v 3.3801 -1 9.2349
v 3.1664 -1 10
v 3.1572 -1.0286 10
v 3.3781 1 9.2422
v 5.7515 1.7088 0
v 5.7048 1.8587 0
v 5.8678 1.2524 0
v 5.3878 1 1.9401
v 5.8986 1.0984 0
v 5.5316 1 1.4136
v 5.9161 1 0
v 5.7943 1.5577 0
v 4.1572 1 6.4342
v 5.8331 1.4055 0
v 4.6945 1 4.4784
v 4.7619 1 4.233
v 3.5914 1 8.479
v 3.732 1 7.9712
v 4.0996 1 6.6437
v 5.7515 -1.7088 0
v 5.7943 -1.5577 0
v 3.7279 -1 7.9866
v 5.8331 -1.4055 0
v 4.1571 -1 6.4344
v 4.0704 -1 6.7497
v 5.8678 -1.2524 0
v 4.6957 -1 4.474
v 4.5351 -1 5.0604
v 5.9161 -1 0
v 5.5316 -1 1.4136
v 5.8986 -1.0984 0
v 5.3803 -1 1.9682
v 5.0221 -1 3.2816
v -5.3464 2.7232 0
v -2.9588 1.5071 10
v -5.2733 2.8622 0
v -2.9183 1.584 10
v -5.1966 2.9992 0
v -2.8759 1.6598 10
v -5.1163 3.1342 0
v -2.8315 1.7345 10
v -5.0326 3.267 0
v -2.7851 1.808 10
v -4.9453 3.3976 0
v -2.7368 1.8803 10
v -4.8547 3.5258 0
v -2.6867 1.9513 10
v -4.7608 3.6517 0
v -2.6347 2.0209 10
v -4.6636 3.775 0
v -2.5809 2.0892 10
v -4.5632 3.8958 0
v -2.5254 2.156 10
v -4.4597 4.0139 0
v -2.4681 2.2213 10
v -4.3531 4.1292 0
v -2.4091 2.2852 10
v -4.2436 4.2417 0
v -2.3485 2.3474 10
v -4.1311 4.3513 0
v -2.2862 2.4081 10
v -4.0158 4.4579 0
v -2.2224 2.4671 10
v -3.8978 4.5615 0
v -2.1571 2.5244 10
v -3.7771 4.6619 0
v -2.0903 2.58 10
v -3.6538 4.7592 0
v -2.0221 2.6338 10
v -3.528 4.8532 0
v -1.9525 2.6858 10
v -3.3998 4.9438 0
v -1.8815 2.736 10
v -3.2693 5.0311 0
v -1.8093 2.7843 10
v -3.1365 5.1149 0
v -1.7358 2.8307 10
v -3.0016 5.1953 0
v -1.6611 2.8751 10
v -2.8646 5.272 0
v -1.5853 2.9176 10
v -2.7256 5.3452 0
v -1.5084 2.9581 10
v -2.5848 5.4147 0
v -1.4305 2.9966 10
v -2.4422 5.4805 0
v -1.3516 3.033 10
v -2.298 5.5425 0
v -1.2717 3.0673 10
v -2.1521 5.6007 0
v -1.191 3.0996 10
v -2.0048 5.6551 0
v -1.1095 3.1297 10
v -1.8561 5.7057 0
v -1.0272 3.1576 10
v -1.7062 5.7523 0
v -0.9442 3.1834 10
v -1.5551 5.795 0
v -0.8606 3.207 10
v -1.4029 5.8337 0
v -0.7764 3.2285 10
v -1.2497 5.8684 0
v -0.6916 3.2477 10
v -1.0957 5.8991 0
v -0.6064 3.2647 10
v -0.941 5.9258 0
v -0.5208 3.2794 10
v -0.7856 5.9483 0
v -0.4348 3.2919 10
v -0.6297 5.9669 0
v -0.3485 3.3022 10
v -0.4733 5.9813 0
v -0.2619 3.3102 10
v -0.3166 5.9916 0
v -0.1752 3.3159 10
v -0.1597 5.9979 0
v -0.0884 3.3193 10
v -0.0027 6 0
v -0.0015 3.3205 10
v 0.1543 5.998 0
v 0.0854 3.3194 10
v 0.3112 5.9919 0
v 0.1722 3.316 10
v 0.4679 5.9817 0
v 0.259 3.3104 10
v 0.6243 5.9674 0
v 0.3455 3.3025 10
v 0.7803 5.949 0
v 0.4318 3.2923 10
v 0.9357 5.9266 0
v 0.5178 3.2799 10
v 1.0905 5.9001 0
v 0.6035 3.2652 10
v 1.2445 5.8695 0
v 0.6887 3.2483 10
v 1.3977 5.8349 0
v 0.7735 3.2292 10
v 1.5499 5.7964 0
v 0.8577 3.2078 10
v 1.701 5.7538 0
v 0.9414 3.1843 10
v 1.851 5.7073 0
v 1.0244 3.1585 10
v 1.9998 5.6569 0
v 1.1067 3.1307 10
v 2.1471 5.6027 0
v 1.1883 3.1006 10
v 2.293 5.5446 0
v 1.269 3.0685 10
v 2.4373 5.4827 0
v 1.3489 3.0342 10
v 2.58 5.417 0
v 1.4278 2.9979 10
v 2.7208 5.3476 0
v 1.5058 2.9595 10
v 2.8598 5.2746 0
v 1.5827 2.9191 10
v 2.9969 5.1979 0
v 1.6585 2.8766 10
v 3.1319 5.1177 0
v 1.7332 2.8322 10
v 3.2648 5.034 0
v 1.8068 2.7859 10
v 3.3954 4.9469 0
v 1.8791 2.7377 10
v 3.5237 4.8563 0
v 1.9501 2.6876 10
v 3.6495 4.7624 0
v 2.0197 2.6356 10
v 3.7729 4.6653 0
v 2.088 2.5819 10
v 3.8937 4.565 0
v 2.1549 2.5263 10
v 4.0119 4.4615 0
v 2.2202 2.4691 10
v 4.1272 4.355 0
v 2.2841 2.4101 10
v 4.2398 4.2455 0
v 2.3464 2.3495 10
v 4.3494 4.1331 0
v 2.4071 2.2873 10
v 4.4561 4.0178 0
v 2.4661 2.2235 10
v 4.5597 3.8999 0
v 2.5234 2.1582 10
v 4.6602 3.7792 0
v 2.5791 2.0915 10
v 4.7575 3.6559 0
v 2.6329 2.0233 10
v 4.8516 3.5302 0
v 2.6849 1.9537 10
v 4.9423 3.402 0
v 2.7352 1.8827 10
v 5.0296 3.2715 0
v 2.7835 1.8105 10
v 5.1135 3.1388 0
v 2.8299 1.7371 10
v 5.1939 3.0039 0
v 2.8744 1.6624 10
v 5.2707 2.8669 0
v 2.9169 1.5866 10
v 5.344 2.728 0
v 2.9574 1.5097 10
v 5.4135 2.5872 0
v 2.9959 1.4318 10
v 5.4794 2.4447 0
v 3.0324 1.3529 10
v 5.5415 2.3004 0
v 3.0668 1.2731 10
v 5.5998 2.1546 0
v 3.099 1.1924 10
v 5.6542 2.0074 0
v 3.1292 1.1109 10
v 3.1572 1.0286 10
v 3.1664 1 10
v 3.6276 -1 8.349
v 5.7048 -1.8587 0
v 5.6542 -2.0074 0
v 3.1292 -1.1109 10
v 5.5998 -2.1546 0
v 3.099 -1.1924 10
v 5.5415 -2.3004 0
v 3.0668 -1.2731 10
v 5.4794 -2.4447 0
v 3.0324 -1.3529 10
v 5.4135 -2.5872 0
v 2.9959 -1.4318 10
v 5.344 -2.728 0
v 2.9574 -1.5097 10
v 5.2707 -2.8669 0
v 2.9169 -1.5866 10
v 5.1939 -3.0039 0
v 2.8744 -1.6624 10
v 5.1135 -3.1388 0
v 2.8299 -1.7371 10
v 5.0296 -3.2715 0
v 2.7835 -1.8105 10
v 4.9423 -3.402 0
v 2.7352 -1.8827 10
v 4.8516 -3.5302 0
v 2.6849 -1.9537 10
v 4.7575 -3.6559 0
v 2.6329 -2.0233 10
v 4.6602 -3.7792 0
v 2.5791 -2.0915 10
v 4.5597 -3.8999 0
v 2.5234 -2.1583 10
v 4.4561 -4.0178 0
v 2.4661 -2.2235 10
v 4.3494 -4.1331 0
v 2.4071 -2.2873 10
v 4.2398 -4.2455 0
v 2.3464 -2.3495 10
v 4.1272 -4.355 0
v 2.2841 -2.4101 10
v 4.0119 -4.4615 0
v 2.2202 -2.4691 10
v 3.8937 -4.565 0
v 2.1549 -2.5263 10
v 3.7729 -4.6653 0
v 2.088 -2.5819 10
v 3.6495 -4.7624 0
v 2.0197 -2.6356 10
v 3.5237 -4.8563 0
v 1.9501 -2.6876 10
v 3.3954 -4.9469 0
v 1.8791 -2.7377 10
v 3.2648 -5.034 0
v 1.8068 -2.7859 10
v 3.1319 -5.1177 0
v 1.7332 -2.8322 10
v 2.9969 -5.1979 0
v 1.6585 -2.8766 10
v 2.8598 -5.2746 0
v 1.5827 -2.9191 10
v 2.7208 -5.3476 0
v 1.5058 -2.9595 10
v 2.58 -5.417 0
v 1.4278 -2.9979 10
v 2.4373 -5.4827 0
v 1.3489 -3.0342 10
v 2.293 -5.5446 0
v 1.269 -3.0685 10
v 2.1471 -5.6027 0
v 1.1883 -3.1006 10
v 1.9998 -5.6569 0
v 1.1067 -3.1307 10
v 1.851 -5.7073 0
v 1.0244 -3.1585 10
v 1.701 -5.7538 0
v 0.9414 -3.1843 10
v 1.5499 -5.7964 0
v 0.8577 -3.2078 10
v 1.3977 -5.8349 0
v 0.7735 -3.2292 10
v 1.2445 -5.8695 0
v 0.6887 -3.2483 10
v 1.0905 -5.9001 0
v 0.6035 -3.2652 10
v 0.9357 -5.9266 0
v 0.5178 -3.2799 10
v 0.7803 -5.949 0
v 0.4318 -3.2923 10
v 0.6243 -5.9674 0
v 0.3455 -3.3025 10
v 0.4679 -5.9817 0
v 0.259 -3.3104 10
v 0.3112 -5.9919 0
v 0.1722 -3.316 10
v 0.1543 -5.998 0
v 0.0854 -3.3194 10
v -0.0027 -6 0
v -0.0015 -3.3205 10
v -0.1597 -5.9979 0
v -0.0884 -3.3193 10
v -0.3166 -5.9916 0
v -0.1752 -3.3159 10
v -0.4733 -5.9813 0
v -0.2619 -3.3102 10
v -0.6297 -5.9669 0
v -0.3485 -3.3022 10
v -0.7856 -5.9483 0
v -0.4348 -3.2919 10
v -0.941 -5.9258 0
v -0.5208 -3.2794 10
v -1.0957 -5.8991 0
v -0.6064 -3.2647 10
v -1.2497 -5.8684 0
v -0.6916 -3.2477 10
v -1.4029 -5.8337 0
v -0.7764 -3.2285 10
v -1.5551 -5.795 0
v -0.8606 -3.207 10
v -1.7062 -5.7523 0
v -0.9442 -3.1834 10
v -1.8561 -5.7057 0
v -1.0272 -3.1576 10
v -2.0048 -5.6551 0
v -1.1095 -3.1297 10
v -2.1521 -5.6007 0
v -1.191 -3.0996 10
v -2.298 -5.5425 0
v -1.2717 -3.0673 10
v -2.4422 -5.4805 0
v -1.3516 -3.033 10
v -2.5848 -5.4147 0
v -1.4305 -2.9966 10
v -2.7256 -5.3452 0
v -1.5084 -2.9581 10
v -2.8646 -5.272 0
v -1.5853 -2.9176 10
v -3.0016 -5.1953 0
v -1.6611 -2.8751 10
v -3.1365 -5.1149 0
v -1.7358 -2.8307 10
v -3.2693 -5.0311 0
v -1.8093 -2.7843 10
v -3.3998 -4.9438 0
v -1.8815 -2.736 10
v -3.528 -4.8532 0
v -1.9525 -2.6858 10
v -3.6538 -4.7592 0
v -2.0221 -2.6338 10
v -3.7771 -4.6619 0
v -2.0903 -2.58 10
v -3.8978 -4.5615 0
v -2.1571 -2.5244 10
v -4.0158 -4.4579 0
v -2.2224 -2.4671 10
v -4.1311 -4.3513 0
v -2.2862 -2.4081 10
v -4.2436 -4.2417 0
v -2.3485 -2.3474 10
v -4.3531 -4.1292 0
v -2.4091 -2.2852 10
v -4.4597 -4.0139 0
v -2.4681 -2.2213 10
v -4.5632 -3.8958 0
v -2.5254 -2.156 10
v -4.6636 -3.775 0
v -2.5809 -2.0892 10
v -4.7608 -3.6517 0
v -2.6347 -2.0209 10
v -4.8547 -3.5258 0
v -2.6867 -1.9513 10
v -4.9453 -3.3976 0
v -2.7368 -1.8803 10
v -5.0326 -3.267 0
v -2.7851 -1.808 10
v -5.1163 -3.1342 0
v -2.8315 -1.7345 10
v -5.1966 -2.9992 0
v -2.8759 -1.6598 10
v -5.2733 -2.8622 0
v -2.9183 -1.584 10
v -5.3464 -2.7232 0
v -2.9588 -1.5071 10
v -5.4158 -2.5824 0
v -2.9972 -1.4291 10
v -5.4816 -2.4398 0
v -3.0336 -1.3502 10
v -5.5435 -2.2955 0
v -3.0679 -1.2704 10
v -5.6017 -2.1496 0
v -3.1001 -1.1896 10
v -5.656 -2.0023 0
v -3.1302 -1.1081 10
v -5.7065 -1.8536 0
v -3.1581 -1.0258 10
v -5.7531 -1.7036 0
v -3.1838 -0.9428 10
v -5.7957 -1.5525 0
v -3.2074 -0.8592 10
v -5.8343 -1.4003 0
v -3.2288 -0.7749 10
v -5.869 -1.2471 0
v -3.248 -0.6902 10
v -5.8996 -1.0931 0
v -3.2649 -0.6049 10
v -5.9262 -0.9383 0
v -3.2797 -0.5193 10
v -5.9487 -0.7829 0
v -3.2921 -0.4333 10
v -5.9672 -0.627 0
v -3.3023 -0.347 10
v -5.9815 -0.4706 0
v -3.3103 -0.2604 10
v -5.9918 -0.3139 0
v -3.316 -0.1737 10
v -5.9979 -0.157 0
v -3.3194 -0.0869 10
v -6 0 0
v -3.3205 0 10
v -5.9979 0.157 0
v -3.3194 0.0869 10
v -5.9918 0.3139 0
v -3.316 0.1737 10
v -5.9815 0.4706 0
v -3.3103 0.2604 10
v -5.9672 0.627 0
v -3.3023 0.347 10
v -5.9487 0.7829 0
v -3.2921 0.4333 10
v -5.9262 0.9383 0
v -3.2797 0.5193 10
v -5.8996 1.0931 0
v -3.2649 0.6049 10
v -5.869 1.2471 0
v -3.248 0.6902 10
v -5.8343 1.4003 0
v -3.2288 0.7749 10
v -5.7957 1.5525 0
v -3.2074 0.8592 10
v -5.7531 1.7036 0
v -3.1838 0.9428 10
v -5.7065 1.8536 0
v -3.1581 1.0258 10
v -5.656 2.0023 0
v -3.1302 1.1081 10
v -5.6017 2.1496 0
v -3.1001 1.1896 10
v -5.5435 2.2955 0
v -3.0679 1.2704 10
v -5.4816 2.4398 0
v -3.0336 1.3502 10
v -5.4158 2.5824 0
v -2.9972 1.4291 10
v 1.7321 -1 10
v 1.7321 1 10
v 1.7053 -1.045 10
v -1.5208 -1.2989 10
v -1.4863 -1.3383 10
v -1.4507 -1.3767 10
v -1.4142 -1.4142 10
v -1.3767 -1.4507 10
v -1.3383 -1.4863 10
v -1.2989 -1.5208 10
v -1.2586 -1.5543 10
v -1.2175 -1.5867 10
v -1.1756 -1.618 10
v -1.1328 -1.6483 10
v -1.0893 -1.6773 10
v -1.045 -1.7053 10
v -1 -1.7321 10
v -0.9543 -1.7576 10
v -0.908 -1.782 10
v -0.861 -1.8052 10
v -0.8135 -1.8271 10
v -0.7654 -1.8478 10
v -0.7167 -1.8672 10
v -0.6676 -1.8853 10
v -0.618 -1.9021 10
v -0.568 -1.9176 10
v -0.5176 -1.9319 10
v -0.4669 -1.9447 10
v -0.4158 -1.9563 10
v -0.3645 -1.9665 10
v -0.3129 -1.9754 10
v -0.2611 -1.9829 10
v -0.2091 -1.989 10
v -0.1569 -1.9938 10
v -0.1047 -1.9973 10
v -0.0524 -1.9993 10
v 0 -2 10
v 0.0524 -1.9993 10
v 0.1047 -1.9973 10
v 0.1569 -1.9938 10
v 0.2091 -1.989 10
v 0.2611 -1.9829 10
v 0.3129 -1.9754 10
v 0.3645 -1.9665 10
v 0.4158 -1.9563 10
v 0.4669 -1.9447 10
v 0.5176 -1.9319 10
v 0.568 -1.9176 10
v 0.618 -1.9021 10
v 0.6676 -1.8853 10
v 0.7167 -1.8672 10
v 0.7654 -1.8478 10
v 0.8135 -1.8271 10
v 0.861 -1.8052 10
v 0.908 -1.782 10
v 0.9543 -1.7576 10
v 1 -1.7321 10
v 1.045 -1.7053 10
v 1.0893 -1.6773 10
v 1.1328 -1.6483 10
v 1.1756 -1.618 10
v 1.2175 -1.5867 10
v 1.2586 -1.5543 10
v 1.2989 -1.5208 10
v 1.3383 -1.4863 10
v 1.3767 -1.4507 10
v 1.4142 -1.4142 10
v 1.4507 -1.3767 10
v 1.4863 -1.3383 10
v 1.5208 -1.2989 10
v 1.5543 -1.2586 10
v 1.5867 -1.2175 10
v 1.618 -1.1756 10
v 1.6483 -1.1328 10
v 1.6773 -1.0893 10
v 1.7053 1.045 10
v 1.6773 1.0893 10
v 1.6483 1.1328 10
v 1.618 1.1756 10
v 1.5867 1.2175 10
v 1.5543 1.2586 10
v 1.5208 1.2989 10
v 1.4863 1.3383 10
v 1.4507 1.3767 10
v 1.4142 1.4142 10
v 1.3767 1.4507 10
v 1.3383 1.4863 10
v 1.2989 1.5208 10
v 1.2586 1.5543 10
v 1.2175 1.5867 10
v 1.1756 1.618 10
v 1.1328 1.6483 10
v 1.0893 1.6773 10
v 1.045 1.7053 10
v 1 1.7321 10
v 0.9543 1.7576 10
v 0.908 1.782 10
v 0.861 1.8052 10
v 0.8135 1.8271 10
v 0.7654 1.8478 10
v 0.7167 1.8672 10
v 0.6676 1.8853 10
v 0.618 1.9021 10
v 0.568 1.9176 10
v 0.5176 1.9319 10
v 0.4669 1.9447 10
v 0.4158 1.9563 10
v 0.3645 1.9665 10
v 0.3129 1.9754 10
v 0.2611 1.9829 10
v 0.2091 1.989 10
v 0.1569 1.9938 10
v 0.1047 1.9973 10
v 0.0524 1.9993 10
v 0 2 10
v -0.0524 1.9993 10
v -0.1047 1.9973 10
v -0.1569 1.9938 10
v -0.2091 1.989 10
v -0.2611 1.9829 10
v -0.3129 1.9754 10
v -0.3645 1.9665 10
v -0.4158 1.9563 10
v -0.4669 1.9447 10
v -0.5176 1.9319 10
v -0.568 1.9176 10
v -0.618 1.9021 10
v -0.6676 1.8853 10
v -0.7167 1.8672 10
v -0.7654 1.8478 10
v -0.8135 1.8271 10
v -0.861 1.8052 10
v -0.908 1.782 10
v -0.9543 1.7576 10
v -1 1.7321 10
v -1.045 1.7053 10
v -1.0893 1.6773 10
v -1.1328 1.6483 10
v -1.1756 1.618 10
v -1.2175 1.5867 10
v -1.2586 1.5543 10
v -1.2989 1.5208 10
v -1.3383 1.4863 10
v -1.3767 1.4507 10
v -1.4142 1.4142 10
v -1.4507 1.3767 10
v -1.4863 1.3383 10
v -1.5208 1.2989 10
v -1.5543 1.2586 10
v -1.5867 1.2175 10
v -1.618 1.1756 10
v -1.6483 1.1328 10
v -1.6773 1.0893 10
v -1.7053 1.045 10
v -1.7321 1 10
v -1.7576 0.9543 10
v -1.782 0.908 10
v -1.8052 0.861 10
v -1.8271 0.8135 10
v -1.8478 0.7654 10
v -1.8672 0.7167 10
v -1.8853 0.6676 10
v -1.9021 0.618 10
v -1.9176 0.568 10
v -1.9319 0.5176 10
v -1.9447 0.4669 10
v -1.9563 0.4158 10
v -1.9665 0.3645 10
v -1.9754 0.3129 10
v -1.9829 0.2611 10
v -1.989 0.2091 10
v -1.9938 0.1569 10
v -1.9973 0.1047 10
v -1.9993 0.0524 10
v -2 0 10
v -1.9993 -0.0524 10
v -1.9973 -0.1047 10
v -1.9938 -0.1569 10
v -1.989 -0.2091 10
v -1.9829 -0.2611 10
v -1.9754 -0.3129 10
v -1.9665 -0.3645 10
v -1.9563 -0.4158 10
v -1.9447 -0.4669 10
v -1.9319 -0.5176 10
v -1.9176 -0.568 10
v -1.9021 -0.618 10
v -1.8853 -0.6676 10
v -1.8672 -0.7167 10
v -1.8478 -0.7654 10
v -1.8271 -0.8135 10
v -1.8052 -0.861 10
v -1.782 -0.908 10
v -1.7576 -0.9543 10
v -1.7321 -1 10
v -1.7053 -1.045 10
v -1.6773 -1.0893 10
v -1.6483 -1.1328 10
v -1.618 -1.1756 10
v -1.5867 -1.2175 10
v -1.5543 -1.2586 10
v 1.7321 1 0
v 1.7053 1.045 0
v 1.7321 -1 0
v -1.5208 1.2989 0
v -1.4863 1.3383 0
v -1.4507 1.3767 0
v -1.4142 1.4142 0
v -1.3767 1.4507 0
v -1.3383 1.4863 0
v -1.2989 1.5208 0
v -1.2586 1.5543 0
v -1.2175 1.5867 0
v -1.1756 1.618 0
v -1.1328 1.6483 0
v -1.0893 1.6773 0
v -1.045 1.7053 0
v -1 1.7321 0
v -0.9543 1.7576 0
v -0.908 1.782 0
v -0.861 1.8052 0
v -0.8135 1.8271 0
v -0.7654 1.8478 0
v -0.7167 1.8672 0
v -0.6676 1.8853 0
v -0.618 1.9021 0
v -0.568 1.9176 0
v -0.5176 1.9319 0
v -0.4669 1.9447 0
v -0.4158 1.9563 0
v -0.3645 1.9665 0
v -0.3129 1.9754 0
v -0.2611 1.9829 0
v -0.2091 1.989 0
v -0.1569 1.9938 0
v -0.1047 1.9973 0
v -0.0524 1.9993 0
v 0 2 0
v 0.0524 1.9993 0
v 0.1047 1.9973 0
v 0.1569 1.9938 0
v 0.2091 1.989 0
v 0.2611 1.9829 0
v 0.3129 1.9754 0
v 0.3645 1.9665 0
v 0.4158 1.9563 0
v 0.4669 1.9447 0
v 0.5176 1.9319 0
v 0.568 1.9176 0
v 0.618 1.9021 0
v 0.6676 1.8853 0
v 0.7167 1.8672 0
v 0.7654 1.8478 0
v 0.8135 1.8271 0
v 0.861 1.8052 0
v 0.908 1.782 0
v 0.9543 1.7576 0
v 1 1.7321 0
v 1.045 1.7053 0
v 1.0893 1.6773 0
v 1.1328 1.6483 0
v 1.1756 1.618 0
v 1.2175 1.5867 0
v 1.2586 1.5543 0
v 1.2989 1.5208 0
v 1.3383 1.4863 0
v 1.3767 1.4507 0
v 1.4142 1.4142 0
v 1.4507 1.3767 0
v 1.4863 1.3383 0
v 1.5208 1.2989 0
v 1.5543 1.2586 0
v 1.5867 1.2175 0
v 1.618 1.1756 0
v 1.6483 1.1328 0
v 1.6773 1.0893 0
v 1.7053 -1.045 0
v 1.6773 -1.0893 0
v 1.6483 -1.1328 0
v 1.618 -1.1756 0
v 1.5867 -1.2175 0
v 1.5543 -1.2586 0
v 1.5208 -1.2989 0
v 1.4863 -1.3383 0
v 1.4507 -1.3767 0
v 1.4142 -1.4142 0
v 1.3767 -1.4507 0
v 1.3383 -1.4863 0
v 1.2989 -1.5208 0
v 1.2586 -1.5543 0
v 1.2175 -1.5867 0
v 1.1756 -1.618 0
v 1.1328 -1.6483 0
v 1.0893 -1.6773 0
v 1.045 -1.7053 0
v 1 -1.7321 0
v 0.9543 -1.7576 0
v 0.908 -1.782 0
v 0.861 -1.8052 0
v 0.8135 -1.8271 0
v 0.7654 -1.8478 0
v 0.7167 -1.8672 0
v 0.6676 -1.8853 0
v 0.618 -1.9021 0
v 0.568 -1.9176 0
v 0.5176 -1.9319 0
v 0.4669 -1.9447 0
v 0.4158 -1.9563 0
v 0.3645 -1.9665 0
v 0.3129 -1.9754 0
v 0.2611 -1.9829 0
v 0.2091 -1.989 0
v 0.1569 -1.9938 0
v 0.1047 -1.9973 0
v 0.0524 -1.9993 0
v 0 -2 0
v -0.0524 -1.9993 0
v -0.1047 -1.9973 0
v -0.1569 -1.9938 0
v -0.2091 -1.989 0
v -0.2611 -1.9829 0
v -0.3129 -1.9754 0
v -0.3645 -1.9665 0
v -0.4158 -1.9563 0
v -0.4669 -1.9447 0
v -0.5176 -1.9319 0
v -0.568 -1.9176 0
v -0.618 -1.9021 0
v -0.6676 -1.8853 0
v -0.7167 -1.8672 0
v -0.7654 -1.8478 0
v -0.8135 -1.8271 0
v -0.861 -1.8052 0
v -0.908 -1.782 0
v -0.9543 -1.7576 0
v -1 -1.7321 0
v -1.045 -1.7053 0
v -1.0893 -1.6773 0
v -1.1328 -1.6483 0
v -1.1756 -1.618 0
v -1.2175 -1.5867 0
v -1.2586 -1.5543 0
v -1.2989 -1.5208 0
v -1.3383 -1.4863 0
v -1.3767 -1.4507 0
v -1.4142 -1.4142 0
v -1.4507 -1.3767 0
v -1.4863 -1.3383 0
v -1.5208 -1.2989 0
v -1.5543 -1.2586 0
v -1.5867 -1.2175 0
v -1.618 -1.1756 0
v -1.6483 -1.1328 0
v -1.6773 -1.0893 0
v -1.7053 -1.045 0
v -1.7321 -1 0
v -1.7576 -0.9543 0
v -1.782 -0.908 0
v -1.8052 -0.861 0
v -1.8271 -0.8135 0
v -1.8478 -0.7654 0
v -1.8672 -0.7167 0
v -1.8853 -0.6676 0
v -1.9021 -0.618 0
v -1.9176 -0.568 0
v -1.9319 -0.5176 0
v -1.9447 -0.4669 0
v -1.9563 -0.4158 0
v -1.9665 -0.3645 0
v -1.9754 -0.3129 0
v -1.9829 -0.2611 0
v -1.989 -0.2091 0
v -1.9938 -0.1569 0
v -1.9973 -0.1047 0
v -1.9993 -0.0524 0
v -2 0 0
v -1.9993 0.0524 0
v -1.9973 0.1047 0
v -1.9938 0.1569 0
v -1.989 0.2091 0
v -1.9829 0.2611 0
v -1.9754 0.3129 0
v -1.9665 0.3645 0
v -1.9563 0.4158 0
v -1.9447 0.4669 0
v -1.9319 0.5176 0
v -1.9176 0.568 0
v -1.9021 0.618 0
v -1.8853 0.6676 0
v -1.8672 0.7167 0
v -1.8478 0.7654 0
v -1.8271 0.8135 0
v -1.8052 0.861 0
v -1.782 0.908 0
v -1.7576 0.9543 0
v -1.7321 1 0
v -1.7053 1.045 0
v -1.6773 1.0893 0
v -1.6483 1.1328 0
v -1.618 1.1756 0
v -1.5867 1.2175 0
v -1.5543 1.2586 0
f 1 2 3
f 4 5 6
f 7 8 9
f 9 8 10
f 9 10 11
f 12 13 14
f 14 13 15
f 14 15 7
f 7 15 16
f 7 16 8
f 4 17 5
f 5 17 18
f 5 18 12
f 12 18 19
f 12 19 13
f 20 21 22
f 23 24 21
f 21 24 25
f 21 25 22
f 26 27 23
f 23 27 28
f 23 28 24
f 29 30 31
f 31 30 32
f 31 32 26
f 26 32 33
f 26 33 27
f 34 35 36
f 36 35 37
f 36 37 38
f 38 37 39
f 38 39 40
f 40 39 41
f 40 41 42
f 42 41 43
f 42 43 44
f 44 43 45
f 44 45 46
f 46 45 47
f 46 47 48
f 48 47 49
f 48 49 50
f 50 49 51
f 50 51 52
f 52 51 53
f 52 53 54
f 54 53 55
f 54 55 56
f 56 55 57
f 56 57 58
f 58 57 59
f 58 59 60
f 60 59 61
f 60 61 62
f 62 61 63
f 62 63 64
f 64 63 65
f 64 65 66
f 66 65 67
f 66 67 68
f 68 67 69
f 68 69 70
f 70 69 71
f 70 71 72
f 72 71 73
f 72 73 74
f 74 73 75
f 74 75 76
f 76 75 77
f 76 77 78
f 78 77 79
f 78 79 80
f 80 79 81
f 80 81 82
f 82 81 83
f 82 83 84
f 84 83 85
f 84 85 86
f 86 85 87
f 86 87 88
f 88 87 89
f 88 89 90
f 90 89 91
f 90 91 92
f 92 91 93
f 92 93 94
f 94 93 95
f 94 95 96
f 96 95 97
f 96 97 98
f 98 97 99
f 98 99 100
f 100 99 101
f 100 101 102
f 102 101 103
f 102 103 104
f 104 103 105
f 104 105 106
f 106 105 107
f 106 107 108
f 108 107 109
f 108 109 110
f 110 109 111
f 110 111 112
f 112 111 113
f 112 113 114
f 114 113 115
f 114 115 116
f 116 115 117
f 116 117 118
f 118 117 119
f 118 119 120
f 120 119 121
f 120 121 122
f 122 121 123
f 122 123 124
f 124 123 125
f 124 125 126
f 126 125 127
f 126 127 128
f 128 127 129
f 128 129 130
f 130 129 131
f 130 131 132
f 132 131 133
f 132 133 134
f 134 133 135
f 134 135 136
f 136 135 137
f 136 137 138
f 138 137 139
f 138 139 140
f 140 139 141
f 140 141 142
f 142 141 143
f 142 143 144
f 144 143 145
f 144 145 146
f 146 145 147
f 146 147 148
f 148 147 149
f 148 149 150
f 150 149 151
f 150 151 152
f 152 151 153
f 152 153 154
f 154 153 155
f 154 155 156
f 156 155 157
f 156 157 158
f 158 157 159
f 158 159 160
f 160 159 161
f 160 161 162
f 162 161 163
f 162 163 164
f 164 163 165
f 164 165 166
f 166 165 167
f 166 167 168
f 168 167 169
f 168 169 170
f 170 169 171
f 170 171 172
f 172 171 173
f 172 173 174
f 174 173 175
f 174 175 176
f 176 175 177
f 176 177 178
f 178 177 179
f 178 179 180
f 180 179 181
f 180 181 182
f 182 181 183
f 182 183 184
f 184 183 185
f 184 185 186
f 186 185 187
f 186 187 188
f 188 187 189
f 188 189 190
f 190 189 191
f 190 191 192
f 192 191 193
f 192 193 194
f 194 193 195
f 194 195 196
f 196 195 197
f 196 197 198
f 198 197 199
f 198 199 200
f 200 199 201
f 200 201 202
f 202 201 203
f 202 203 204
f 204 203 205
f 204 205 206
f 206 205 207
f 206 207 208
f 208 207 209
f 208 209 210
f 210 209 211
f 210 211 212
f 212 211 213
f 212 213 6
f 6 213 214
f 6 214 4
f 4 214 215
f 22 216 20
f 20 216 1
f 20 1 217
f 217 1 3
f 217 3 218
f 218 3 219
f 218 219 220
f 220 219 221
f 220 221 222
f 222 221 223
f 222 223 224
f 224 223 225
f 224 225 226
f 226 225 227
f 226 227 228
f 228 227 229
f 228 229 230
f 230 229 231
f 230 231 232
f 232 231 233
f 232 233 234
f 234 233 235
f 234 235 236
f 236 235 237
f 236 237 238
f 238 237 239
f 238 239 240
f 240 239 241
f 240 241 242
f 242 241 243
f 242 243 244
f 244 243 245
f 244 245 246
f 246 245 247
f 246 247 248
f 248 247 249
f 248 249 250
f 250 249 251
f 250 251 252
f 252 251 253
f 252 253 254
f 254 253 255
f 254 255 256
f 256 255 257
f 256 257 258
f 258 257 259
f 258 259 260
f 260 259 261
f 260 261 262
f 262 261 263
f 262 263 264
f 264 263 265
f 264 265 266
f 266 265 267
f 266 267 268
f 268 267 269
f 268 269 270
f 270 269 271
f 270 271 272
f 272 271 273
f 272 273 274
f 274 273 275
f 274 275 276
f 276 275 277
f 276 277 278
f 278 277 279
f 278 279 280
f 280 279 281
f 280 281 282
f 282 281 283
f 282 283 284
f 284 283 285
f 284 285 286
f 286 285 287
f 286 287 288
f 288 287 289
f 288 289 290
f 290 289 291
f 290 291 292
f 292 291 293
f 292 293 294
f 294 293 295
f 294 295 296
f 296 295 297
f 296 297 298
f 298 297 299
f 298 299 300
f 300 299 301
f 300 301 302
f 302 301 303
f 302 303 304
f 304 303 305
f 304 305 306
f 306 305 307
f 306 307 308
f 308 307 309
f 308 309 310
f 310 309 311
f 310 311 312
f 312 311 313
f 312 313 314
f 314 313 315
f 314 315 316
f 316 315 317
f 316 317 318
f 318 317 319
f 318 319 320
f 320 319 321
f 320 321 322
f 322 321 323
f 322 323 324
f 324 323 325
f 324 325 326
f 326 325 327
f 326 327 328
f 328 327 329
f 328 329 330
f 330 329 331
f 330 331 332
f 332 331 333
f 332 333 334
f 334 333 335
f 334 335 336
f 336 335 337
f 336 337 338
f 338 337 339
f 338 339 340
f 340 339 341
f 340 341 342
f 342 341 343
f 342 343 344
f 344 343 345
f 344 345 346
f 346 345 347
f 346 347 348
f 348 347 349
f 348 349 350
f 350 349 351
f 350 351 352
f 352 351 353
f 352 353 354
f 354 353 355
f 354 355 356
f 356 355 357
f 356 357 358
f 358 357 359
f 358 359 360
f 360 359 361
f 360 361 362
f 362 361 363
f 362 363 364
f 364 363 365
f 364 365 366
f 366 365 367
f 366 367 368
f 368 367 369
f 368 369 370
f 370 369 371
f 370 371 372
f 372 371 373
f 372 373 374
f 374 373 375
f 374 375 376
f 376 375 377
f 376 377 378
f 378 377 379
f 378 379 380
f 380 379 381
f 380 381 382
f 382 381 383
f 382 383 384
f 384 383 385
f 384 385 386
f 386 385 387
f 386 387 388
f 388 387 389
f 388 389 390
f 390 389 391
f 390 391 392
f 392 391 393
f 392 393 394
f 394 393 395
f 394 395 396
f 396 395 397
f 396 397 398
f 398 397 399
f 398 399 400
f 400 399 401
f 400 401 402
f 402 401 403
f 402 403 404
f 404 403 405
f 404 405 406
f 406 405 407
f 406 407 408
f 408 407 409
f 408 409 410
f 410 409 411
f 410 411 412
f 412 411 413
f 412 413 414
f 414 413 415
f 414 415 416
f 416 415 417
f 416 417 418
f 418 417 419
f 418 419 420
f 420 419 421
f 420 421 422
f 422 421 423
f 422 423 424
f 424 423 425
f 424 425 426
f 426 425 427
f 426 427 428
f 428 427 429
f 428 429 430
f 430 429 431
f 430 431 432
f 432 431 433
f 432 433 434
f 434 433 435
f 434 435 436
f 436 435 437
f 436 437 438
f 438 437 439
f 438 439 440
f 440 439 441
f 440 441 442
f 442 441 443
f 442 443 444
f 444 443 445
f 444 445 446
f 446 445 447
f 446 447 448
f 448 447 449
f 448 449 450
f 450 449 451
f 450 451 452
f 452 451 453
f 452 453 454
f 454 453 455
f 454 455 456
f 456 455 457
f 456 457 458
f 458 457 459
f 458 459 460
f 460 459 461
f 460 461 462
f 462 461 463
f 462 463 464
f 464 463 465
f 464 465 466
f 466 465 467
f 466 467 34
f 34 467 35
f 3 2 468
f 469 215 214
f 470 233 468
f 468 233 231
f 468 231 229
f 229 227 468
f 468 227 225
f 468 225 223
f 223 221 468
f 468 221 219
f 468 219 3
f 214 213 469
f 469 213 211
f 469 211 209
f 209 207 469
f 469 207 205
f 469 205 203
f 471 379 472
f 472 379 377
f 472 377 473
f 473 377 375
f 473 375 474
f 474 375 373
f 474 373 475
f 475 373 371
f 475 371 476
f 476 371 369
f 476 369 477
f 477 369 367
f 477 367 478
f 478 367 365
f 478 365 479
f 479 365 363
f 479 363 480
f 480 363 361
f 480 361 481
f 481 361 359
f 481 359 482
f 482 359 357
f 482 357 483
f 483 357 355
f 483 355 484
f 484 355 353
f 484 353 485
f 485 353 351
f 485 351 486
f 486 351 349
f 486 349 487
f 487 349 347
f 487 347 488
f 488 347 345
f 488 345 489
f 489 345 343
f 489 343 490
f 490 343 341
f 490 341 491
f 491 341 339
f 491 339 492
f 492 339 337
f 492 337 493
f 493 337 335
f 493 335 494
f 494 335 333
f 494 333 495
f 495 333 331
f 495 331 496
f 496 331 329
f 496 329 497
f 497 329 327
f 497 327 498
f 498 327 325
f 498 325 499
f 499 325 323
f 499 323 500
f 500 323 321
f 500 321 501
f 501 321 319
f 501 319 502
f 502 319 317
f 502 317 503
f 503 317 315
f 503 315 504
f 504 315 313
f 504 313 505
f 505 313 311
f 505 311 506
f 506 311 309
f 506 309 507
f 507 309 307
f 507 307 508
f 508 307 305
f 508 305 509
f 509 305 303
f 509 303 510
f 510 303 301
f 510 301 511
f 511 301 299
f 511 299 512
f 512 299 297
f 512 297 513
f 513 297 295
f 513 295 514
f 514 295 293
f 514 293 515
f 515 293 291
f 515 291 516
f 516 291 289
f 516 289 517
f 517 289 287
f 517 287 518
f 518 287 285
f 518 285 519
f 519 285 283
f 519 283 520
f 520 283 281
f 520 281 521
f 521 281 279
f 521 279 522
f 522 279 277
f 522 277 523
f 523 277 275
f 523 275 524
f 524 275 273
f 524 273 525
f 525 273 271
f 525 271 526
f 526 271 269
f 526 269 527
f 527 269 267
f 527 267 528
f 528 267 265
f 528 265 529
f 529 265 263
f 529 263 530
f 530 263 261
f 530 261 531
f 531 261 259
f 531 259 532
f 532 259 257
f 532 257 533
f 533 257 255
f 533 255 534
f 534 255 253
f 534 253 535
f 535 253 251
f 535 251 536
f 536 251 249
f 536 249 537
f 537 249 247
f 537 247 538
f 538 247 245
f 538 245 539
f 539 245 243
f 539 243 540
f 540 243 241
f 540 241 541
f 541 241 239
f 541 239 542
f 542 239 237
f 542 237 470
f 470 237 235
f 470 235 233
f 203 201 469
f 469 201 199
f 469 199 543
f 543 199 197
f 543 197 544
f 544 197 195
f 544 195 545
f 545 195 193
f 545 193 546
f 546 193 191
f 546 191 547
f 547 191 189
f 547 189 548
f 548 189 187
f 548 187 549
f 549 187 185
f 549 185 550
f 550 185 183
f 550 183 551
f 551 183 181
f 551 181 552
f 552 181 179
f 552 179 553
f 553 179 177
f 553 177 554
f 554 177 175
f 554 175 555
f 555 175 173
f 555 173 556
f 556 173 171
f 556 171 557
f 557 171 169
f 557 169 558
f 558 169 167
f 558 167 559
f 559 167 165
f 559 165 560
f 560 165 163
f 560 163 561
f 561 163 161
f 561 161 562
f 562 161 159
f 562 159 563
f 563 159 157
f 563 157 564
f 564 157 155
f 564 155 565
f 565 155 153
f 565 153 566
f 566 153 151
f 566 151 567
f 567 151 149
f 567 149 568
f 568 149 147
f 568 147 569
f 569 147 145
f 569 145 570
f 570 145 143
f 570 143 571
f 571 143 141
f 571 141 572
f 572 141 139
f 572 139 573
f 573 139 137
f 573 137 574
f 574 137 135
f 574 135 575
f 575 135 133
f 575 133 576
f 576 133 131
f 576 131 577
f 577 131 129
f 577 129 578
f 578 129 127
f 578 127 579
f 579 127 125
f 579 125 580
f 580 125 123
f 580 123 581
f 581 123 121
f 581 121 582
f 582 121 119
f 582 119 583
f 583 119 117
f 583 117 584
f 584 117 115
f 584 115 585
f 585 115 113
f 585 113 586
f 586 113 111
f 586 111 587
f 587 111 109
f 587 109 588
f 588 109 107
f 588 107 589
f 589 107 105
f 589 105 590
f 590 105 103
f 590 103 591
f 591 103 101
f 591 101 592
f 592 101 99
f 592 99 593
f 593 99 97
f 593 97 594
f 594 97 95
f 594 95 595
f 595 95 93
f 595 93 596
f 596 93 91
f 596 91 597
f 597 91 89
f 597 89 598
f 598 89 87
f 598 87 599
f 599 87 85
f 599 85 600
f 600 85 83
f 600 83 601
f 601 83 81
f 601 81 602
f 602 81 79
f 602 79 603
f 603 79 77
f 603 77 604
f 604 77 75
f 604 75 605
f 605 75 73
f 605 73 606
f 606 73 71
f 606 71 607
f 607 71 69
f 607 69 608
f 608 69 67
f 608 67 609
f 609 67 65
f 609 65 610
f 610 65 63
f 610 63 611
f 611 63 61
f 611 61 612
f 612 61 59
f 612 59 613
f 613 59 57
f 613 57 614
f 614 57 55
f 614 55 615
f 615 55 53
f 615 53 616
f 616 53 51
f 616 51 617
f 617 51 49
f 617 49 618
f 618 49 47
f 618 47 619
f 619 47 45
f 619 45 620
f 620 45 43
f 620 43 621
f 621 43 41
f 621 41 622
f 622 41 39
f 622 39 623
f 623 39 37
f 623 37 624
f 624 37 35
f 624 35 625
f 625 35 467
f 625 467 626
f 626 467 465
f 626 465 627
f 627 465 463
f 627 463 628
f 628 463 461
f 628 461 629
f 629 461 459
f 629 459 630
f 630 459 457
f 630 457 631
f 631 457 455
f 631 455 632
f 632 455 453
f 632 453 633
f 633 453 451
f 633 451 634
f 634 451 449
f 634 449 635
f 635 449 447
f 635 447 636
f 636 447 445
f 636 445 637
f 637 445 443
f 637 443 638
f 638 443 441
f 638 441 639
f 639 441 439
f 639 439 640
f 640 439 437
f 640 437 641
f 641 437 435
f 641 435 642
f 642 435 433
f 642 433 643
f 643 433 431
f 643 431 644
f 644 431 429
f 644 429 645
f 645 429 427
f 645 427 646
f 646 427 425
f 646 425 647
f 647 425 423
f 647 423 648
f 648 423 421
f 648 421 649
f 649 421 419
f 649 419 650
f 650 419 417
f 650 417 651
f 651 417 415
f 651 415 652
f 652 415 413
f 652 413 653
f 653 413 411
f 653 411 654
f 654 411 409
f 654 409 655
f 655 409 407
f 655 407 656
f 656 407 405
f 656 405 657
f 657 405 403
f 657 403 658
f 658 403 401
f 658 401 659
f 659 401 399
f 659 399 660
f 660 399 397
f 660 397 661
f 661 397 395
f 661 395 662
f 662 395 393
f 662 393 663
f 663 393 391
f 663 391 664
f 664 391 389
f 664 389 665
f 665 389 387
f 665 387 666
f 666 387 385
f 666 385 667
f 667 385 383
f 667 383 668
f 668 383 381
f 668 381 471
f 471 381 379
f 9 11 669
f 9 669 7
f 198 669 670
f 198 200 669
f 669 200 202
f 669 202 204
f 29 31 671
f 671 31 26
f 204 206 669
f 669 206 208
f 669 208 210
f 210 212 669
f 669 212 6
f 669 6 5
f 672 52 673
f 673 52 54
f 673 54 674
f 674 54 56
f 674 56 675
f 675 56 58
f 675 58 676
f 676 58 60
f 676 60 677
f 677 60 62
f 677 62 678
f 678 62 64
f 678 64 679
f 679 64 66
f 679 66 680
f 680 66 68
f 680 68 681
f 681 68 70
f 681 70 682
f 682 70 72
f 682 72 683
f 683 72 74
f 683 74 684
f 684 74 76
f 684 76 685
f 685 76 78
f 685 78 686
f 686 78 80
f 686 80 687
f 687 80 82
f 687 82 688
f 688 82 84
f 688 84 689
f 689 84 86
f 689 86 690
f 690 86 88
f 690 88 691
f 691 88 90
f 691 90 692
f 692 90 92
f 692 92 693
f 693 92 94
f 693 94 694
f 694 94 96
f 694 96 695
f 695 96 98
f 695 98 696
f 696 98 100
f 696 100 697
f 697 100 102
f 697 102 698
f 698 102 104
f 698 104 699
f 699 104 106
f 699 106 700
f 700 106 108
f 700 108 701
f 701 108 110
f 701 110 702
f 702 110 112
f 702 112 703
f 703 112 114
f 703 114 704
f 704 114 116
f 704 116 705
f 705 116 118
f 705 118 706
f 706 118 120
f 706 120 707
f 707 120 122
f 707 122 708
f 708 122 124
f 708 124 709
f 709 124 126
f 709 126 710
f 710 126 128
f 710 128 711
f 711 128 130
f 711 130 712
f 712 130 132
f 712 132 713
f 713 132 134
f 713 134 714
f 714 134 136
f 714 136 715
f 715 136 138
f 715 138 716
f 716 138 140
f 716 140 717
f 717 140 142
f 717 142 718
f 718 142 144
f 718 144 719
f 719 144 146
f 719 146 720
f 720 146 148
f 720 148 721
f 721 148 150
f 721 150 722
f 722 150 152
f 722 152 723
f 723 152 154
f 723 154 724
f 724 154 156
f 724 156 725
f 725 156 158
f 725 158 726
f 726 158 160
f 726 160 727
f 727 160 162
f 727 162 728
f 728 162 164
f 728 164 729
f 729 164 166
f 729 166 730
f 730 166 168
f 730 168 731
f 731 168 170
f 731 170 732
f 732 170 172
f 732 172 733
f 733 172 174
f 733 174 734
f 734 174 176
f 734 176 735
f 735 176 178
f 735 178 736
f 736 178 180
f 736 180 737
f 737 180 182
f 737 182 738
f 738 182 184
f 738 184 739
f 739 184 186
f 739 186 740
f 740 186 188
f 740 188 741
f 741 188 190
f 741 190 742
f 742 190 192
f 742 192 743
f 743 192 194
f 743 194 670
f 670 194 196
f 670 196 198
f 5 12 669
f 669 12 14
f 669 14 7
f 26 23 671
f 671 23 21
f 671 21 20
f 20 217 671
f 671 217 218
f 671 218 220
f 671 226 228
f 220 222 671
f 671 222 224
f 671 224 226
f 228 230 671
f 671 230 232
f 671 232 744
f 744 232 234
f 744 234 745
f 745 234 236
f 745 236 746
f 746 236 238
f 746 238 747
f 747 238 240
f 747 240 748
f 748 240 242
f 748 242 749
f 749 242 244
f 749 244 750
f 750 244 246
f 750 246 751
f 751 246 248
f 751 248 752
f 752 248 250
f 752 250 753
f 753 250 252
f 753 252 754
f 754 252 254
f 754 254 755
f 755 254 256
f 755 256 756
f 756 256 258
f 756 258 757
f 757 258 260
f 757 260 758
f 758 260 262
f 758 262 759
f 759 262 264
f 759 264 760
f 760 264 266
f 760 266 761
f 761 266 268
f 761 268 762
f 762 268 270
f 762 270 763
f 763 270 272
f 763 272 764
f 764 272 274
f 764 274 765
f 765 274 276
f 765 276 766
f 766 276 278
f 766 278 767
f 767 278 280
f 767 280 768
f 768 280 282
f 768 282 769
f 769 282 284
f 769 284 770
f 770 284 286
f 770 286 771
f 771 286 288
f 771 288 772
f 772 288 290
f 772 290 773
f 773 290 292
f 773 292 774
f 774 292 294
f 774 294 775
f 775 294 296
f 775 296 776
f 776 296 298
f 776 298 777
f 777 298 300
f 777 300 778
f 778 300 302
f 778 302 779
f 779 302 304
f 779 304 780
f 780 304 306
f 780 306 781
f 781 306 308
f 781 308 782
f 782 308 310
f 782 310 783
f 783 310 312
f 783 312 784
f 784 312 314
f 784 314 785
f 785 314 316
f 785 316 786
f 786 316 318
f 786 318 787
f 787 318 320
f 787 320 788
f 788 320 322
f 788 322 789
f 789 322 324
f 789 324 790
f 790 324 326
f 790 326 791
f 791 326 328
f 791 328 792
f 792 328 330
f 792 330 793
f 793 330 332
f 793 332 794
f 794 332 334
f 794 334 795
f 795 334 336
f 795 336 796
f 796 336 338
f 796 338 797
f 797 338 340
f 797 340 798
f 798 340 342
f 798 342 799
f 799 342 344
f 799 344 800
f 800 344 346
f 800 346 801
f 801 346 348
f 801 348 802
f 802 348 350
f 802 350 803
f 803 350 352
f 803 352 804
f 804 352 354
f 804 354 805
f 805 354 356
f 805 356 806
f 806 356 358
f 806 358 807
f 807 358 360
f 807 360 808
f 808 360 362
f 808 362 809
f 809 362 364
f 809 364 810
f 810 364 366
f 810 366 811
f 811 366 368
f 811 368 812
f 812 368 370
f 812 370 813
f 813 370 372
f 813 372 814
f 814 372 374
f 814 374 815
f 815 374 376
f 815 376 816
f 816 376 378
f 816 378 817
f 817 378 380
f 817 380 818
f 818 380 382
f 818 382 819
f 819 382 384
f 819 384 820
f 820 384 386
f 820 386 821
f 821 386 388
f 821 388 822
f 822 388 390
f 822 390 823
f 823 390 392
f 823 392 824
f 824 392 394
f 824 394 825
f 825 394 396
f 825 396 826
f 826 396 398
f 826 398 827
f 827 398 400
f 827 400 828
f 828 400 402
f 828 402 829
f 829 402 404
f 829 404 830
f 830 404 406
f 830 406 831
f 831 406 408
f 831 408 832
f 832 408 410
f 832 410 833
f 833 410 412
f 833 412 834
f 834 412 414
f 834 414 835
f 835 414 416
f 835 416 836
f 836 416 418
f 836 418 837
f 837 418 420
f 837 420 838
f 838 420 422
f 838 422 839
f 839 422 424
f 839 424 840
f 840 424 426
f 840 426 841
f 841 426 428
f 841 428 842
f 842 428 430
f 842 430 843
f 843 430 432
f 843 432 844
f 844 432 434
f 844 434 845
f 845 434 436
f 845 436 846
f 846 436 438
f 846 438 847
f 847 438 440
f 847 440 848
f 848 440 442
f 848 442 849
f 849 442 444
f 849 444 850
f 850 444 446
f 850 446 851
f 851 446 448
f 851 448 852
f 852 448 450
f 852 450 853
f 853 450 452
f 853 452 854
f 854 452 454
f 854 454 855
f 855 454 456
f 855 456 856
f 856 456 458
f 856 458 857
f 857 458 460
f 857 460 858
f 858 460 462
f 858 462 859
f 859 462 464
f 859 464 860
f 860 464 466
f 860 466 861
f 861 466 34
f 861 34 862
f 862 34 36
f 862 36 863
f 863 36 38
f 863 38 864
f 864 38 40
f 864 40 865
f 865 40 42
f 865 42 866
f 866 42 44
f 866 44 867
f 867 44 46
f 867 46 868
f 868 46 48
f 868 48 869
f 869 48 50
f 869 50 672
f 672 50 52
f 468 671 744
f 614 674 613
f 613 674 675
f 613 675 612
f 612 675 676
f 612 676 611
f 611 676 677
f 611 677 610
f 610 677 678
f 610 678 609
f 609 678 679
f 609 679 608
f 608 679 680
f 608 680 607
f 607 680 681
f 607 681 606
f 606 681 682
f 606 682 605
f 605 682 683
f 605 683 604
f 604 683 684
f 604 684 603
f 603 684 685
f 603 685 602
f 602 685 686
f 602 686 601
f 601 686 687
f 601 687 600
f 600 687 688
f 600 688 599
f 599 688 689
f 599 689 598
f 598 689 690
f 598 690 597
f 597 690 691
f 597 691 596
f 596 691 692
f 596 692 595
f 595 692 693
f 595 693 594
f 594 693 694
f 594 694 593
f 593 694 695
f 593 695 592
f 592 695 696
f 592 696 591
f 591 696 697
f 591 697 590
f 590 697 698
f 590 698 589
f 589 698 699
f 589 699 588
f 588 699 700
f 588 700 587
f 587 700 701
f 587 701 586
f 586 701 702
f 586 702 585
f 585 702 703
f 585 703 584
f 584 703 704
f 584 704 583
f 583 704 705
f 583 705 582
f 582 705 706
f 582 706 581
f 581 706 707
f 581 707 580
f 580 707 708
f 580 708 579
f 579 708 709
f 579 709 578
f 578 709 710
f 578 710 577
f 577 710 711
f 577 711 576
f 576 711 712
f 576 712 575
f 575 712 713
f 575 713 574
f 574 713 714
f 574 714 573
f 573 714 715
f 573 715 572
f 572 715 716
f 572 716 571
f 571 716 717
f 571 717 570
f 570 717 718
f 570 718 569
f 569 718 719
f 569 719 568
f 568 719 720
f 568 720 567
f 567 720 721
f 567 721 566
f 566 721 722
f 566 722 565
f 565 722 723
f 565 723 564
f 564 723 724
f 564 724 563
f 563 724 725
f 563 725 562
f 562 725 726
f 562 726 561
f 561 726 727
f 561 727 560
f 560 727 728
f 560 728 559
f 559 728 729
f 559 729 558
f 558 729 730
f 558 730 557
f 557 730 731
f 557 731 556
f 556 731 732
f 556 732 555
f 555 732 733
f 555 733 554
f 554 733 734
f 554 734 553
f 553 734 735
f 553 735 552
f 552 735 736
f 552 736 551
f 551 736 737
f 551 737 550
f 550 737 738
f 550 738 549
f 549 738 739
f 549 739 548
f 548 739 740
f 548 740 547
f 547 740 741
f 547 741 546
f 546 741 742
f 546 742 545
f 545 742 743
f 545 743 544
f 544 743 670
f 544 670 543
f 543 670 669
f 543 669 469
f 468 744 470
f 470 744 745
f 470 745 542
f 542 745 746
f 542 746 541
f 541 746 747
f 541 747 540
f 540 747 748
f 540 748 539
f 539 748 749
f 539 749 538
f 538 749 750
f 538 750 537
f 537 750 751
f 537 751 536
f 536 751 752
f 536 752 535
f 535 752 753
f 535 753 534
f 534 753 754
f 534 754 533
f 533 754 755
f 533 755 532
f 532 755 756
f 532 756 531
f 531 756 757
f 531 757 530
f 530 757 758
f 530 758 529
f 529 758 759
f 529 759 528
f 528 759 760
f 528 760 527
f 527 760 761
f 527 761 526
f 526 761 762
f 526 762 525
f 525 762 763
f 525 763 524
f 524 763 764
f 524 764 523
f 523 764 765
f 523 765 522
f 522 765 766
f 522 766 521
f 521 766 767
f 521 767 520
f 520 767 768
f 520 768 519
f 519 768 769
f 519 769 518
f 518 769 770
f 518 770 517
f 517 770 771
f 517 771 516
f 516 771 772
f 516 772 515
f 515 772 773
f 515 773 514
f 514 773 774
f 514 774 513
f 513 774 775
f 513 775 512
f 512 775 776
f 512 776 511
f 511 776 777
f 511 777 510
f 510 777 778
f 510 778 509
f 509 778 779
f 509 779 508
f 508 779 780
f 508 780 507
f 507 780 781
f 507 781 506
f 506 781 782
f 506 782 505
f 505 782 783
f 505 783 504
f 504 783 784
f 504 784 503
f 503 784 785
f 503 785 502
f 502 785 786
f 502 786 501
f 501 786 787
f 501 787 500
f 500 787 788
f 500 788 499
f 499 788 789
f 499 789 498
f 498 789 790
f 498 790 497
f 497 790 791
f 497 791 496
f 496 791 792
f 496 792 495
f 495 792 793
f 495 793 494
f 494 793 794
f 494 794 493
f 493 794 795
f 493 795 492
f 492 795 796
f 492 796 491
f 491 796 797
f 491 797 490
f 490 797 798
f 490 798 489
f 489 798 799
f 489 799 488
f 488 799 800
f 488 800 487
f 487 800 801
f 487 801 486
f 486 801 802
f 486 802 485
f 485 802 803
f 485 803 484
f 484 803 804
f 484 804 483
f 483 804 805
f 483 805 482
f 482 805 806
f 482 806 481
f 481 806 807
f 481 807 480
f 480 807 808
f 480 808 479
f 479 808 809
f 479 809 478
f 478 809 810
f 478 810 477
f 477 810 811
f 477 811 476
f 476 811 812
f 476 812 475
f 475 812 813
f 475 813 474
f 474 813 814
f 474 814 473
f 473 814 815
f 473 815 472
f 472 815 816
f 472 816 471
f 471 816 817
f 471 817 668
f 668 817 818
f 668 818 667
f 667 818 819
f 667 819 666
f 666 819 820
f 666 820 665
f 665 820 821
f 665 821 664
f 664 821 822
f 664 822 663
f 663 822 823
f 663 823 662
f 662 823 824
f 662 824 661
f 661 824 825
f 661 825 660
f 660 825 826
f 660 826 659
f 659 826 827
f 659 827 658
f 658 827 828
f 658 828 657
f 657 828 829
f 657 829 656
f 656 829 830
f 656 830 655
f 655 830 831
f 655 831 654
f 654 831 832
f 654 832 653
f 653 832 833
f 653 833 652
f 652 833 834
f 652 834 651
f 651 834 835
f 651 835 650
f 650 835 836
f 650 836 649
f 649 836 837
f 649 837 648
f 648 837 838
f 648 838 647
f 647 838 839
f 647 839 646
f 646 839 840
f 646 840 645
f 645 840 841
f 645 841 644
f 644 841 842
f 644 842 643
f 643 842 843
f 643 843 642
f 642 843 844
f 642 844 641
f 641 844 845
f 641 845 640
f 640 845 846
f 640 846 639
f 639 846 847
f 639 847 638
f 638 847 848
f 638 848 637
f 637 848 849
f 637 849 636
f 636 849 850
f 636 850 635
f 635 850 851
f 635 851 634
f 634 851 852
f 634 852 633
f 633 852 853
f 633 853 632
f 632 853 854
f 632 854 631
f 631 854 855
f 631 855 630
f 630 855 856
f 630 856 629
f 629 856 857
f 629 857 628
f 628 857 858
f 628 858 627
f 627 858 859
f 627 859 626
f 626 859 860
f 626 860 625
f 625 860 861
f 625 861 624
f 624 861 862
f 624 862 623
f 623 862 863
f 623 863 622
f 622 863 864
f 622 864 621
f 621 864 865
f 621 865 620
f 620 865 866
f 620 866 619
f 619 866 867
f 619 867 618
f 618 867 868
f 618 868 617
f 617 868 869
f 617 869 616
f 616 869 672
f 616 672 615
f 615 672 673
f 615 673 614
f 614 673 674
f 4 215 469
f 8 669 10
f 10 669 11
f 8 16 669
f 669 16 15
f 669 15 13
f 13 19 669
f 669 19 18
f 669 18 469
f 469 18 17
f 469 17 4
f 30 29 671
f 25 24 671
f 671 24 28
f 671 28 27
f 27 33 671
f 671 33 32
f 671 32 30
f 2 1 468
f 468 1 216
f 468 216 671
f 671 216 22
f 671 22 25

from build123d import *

# Parameters (mm, degrees)
SKETCH1_R           = 6
BOSS_EXTRUDE1_DEPTH = 10
BOSS_EXTRUDE1_TAPER = 15
SKETCH2_R           = 2
CUT_EXTRUDE1_DEPTH  = 14.114877049
SKETCH3_W           = 4.267949192
SKETCH3_H           = 2
CUT_EXTRUDE2_DEPTH  = 14.114877049


with BuildPart() as part:
    # Sketch1 → Boss-Extrude1 (new body)
    with BuildSketch(Plane.XY):
        Circle(SKETCH1_R)
    extrude(amount=BOSS_EXTRUDE1_DEPTH, taper=BOSS_EXTRUDE1_TAPER)

    # Sketch2 → Cut-Extrude1 (cut, through all)
    with BuildSketch(Plane(origin=(0, 0, 0), x_dir=(-1, 0, 0), z_dir=(0, 0, -1))):
        Circle(SKETCH2_R)
    extrude(amount=-CUT_EXTRUDE1_DEPTH, mode=Mode.SUBTRACT)

    # Sketch3 → Cut-Extrude2 (cut, through all)
    with BuildSketch(Plane(origin=(0, 0, 0), x_dir=(-1, 0, 0), z_dir=(0, 0, -1))):
        with Locations((-3.866025404, 0)):
            Rectangle(SKETCH3_W, SKETCH3_H)
    extrude(amount=-CUT_EXTRUDE2_DEPTH, mode=Mode.SUBTRACT)


solid = part.part
